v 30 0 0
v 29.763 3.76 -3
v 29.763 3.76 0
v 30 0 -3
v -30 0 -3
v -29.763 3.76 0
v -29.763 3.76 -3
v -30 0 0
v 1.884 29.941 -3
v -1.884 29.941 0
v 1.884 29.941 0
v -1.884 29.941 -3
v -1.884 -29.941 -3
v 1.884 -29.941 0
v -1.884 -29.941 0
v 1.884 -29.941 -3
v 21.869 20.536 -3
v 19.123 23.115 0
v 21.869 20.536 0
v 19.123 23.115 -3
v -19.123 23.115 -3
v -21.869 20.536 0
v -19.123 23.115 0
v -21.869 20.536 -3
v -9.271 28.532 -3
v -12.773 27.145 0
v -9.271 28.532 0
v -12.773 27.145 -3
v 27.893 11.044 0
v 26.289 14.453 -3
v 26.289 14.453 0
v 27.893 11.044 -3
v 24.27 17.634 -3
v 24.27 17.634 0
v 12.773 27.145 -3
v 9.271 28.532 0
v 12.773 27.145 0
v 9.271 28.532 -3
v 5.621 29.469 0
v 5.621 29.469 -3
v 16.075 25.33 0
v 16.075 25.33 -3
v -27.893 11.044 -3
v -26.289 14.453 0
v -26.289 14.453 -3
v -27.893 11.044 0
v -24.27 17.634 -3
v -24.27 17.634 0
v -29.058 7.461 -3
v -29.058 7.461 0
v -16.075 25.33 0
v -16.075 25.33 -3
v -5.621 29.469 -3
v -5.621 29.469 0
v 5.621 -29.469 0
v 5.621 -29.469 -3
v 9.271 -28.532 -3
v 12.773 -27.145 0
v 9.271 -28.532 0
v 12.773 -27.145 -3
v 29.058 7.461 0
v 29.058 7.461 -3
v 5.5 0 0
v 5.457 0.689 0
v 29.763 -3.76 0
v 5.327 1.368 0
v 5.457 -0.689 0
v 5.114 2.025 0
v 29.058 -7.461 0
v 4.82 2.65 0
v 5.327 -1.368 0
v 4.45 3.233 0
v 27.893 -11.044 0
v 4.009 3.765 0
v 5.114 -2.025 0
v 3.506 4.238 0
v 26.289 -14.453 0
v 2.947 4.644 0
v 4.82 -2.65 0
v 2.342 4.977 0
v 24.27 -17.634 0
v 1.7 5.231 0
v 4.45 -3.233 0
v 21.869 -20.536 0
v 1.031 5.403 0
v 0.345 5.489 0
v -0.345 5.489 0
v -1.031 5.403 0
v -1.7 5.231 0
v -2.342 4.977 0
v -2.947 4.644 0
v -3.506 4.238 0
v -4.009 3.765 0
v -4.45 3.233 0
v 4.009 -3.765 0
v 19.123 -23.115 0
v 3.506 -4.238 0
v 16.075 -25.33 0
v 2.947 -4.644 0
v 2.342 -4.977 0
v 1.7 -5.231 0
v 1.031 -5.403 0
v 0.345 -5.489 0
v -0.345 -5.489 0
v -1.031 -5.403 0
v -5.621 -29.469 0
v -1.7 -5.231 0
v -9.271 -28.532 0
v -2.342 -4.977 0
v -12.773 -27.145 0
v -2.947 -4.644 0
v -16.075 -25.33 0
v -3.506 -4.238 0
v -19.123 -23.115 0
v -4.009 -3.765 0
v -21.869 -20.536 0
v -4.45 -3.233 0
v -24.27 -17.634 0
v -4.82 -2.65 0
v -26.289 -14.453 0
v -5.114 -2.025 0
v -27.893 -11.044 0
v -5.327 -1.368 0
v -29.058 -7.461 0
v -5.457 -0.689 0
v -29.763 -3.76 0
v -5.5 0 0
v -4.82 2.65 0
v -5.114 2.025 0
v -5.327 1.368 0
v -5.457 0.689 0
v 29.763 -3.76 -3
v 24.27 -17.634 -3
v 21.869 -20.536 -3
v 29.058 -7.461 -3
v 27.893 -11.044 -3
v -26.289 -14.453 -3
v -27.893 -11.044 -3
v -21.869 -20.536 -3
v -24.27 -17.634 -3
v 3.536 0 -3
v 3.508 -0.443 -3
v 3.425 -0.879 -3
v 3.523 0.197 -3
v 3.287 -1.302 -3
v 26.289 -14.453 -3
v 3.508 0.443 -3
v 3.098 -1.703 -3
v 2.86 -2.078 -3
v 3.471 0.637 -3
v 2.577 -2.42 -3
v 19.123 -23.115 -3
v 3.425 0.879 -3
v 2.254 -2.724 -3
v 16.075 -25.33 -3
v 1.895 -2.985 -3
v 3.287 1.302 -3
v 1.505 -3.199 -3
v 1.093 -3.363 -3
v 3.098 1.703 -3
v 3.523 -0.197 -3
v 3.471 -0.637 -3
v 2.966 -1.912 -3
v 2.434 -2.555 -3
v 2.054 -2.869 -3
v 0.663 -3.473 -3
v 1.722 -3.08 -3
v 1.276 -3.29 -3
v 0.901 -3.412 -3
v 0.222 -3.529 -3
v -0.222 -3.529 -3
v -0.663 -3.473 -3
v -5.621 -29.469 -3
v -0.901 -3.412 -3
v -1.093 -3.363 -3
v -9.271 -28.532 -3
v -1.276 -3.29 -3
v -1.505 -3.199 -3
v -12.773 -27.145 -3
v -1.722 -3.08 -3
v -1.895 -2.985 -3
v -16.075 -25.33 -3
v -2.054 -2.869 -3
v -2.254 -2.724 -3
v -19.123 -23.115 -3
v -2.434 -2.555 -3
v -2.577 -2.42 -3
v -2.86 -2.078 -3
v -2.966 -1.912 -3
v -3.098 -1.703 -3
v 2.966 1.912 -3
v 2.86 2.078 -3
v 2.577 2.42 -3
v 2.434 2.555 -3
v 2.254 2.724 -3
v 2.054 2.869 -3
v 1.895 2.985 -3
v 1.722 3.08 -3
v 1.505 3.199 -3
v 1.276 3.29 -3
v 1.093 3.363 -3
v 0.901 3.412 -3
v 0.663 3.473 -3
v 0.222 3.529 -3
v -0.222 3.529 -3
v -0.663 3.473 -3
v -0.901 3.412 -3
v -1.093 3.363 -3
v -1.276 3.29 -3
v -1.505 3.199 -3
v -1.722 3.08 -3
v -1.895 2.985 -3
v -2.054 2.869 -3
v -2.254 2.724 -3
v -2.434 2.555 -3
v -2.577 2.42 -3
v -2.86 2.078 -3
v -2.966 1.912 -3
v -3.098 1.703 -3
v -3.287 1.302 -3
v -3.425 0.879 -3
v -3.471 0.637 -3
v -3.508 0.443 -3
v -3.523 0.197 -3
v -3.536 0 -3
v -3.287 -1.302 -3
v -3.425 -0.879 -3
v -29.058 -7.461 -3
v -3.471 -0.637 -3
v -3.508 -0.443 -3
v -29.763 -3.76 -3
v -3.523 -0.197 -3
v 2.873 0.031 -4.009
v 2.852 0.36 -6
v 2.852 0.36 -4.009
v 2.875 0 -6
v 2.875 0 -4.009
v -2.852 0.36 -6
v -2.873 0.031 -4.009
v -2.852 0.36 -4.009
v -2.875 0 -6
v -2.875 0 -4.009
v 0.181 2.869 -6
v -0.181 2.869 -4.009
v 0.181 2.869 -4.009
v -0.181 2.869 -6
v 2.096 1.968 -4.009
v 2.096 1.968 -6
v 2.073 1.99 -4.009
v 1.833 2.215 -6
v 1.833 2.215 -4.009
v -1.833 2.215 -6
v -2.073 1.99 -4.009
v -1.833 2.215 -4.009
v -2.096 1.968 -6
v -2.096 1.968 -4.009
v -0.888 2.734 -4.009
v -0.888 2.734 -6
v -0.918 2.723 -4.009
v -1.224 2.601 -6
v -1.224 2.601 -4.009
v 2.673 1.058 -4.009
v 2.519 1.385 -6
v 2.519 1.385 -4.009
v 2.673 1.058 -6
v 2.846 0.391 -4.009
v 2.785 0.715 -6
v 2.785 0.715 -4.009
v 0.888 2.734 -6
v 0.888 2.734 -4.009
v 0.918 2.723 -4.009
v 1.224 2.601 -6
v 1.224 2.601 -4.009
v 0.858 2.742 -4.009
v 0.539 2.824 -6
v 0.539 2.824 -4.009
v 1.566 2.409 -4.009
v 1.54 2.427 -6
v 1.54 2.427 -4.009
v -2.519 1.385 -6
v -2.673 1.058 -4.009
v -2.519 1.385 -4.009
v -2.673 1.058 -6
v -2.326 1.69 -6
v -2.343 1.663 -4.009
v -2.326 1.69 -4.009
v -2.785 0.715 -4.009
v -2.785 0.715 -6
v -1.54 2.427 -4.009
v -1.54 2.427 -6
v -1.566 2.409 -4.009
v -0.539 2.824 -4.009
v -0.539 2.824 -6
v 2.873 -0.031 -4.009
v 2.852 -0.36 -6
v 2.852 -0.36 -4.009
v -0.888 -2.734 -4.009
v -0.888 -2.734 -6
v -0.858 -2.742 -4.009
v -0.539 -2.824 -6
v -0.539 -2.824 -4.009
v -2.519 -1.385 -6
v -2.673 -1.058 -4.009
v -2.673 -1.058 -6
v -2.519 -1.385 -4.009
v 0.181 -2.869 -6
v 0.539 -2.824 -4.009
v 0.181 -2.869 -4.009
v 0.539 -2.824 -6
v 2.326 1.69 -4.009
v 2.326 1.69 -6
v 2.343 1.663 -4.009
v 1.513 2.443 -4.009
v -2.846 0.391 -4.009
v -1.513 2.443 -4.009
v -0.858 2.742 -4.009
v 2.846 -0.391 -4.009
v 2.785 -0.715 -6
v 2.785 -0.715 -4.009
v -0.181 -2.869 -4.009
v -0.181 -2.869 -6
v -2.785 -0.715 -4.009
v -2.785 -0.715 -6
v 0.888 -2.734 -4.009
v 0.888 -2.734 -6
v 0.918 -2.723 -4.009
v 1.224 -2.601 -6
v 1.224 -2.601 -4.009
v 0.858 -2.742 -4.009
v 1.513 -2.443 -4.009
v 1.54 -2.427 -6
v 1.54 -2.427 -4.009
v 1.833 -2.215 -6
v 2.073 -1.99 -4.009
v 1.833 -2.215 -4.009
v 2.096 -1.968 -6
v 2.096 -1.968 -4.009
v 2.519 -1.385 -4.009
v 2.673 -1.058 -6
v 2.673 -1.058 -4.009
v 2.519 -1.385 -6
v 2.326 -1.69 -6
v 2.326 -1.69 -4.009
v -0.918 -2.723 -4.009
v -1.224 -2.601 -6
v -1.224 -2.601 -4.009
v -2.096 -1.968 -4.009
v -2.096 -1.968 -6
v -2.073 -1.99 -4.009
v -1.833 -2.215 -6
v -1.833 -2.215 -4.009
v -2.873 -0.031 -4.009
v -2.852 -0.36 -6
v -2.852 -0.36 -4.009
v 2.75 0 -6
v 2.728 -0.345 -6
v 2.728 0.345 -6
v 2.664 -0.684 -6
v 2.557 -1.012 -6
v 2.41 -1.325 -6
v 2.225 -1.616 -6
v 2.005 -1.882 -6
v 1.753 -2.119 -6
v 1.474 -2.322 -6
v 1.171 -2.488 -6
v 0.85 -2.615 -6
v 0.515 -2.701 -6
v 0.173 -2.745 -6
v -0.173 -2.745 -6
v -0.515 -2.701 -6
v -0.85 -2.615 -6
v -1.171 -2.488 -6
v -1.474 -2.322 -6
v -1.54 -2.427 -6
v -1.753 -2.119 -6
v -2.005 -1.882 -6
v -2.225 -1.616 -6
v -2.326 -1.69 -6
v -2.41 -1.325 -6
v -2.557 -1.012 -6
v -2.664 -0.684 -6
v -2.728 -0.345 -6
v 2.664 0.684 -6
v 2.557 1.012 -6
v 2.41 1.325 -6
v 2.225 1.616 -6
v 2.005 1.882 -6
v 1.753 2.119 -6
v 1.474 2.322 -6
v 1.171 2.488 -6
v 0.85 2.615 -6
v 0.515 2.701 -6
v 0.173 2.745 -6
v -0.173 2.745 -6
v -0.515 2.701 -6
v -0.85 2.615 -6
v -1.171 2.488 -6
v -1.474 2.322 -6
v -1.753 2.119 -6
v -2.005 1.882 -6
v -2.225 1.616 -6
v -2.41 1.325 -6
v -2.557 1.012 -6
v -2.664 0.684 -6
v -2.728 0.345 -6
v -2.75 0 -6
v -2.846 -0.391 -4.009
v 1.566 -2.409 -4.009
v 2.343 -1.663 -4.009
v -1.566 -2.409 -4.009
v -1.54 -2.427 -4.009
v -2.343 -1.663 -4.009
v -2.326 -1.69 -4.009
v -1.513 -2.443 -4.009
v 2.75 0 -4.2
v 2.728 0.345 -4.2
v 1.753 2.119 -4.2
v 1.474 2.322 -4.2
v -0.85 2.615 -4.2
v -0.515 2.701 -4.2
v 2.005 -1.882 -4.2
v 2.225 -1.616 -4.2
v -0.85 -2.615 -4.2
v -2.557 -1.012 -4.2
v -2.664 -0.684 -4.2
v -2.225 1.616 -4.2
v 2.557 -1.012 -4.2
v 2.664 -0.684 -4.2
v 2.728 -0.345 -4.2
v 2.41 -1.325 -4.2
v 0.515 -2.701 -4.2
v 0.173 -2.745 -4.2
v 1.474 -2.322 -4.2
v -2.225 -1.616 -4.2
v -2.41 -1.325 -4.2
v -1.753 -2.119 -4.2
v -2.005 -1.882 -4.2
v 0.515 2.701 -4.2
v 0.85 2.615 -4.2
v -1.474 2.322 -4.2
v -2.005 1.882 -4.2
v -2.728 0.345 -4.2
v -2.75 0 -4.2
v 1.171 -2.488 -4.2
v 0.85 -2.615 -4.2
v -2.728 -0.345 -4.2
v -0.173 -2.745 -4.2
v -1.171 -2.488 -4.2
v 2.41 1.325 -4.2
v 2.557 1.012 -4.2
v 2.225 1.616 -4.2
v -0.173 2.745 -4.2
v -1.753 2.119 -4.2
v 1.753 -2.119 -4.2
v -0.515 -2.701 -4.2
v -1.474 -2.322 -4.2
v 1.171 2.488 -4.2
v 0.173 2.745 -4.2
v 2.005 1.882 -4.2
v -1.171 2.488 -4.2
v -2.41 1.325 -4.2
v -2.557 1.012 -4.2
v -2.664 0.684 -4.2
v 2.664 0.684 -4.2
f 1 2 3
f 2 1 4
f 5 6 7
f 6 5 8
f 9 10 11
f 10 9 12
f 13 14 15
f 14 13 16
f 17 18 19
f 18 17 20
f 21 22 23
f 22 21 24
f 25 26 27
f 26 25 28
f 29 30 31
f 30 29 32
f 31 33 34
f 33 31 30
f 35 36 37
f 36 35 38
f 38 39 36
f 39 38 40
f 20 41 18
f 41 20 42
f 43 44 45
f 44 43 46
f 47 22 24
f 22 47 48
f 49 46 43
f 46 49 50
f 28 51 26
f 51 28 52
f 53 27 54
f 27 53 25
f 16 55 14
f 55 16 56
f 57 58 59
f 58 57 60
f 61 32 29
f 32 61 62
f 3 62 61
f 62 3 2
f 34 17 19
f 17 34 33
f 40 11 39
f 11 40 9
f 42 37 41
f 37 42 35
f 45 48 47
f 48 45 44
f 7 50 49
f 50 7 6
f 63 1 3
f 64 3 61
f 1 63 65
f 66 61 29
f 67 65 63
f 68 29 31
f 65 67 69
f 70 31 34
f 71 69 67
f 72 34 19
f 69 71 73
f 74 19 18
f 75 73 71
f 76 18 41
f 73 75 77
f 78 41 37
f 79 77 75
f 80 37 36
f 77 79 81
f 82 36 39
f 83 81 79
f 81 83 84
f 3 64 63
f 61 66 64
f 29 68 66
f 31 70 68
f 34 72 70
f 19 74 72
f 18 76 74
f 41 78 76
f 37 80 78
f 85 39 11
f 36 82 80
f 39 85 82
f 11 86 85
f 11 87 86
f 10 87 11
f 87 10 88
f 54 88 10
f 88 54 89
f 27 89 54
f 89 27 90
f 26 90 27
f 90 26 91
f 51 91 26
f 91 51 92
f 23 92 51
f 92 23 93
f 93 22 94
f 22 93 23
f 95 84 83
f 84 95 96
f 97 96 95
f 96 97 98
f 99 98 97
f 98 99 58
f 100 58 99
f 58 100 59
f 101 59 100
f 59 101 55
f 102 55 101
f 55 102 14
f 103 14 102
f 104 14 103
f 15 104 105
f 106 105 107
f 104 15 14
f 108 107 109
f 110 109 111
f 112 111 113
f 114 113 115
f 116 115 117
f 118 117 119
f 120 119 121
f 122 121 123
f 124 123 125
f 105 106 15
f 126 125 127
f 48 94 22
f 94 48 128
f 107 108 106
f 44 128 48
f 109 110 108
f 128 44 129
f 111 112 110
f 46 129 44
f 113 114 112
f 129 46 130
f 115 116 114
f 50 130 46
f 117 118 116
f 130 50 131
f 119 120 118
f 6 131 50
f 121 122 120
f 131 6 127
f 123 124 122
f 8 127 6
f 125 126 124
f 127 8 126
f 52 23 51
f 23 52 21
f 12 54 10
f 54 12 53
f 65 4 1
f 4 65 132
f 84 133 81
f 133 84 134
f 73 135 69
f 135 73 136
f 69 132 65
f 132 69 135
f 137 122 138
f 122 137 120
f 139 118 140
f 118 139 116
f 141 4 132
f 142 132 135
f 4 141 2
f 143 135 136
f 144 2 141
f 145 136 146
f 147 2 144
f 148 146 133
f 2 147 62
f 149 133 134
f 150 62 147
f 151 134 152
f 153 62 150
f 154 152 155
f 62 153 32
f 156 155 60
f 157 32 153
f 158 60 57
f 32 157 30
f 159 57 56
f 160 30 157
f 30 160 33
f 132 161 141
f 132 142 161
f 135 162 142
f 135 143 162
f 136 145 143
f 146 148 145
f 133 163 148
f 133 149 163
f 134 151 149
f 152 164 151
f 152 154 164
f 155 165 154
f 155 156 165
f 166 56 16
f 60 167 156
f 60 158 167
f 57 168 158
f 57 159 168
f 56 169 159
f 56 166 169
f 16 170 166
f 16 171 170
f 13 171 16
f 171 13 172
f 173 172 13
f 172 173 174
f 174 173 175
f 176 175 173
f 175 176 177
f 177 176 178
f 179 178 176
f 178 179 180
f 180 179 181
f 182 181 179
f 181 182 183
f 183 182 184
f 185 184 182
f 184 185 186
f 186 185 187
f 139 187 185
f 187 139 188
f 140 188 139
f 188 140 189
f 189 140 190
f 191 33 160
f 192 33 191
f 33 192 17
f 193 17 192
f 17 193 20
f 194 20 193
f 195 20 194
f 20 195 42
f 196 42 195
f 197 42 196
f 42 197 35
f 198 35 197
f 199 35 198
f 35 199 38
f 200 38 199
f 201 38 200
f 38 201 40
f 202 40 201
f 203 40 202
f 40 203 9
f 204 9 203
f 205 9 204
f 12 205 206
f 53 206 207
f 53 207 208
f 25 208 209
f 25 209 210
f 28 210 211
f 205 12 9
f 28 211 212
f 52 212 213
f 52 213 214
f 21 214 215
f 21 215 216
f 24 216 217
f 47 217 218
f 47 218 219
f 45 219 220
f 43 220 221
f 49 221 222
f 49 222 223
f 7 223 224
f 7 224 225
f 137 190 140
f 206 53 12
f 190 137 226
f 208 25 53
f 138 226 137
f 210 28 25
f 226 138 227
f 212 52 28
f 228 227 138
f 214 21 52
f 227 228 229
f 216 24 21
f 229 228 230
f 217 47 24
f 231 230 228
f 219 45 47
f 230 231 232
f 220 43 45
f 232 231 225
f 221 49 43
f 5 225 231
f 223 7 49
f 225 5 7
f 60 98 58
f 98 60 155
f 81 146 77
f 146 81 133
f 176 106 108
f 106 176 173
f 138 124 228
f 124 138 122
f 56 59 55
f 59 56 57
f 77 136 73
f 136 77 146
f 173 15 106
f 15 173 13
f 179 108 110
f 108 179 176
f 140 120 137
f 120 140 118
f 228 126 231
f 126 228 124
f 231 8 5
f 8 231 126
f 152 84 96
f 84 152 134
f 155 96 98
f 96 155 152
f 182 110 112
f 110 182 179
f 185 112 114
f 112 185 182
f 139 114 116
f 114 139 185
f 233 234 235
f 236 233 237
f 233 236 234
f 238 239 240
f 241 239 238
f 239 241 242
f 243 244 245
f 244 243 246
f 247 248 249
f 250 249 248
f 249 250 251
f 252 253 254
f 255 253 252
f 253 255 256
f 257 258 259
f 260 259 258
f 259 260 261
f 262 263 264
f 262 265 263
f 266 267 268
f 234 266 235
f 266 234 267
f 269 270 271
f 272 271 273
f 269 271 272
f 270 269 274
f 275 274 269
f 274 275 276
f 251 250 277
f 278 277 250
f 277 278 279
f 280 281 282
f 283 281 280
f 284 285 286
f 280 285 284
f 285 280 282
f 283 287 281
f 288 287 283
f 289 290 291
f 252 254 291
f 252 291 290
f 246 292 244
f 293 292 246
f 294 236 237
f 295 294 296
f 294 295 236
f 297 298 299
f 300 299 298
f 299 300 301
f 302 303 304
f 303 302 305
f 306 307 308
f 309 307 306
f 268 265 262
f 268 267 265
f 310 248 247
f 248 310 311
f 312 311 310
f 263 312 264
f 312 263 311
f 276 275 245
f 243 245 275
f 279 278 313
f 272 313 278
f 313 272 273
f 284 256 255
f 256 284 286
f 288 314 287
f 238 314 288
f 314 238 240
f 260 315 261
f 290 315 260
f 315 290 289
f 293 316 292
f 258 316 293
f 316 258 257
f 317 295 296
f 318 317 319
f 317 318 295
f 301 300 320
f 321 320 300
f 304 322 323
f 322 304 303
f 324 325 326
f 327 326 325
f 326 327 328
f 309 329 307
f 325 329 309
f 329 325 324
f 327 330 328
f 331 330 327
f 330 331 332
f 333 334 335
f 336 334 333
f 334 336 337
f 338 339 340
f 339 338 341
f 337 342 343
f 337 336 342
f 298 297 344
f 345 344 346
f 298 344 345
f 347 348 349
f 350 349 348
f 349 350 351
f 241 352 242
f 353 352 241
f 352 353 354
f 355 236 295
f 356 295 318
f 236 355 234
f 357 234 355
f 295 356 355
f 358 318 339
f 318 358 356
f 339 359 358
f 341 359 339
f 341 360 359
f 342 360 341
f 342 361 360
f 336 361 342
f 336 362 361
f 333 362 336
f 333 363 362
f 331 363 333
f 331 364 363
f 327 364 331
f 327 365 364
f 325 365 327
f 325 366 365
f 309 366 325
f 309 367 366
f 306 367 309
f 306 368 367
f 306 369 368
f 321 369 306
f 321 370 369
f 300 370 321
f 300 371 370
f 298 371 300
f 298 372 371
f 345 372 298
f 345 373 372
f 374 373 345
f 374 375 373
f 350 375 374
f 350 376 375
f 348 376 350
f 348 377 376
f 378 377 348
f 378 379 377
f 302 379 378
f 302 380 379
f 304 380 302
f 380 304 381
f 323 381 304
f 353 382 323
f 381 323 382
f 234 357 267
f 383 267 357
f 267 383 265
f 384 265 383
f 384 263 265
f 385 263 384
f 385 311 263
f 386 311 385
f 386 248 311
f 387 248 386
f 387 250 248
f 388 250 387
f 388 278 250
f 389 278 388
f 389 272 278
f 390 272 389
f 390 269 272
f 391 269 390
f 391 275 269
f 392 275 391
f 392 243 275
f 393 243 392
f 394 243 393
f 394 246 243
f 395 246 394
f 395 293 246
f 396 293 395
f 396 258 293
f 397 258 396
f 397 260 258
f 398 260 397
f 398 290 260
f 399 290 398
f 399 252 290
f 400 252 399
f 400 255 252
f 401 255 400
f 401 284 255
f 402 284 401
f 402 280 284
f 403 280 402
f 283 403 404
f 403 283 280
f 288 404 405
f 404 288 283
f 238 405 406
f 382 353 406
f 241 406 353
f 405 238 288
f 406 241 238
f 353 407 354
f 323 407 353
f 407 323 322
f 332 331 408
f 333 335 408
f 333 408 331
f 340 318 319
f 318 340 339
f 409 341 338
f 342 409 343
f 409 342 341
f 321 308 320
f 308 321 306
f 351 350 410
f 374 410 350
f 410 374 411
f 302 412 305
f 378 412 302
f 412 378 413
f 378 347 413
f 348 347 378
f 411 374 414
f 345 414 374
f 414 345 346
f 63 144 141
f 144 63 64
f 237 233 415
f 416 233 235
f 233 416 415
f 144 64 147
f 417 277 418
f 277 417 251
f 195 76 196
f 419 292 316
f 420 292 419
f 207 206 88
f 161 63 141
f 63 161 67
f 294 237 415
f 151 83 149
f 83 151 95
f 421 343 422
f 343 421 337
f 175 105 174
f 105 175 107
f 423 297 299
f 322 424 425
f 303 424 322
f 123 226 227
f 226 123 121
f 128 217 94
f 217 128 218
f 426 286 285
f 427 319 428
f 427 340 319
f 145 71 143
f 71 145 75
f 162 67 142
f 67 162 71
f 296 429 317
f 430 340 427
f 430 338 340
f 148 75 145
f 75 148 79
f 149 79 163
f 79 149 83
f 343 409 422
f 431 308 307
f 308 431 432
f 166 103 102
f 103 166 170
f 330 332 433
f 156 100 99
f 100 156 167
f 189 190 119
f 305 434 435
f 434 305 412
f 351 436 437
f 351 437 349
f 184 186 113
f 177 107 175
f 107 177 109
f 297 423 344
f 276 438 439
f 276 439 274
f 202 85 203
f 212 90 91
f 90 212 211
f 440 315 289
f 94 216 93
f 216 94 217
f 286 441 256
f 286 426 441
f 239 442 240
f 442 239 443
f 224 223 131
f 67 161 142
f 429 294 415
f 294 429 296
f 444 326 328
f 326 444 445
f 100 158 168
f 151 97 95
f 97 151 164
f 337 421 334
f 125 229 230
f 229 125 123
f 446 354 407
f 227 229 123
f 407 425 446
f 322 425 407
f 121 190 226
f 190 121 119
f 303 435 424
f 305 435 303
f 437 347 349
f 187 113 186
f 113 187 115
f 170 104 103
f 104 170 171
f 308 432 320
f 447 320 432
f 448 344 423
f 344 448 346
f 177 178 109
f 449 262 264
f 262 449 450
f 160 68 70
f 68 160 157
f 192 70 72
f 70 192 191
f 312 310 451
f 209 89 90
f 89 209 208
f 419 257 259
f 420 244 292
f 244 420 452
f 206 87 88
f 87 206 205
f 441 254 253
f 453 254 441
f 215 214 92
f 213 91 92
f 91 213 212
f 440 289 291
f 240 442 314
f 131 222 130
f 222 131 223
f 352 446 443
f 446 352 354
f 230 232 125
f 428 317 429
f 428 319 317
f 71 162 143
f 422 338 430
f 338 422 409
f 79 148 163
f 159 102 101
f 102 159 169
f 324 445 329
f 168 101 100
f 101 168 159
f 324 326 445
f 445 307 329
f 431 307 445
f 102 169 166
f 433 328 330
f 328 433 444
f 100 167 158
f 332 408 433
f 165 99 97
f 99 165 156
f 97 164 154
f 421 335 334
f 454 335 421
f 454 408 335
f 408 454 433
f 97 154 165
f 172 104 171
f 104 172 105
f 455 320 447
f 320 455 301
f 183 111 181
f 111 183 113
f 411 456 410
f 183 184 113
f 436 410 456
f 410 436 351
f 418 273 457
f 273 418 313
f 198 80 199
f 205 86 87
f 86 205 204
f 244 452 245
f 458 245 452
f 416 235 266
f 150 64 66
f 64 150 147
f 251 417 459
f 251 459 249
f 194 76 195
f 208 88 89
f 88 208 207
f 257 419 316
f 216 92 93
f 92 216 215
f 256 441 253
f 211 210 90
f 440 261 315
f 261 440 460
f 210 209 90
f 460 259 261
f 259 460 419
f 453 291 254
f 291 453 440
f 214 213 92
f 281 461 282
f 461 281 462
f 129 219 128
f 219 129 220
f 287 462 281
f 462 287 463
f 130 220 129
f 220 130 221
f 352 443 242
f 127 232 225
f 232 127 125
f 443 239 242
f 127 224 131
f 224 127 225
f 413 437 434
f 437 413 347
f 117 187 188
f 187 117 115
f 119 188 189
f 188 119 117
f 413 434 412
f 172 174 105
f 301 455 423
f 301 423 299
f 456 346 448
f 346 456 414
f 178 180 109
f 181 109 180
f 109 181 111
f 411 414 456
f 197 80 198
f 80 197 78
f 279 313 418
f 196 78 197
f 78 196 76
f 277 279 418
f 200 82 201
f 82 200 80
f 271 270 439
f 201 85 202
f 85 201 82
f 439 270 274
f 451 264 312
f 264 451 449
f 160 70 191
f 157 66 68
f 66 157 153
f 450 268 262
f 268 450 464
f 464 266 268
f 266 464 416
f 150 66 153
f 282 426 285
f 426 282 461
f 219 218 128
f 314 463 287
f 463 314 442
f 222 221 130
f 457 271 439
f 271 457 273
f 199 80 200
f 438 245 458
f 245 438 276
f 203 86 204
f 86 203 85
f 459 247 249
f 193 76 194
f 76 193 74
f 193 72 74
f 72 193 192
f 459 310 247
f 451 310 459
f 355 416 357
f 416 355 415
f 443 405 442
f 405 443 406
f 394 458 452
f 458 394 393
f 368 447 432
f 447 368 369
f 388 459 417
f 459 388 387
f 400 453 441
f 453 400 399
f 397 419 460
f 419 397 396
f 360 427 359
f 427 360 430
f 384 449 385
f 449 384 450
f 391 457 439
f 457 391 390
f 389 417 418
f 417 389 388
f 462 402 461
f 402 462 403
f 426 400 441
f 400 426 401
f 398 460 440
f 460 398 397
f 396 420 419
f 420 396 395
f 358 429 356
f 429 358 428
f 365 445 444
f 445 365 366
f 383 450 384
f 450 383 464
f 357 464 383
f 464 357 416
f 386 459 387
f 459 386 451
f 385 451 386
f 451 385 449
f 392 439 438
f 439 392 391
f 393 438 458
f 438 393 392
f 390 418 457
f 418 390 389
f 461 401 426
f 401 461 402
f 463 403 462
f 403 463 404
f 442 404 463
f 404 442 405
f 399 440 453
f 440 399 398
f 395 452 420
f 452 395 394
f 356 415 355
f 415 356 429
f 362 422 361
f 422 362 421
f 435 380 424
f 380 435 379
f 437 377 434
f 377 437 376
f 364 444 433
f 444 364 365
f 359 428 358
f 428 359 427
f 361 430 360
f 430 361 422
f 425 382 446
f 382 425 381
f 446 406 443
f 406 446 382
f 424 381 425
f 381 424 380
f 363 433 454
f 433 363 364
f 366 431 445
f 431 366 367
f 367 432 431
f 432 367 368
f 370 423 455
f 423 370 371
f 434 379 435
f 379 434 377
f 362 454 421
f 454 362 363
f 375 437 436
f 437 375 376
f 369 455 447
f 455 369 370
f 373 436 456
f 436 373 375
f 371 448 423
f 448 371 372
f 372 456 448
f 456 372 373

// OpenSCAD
$fn = 50;

difference() {
	union() {
		translate(v = [0, 0, -3.0]) {
			cylinder(h = 3, r = 30.0);
		}
		#translate(v = [0, 0, -6.0]) {
			cylinder(h = 6, r = 2.875);
		}
	}
	union() {
		translate(v = [0, 0, 0]) {
			rotate(a = [0, 0, 0]) {
				difference() {
					union() {
						translate(v = [0, 0, -6.0]) {
							cylinder(h = 6, r = 2.25);
						}
						translate(v = [0, 0, -4.2]) {
							cylinder(h = 4.2, r1 = 2.75, r2 = 5.5);
						}
						translate(v = [0, 0, -6.0]) {
							cylinder(h = 6, r = 2.75);
						}
						translate(v = [0, 0, -6.0]) {
							cylinder(h = 6, r = 2.25);
						}
					}
					union();
				}
			}
		}
	}
}
